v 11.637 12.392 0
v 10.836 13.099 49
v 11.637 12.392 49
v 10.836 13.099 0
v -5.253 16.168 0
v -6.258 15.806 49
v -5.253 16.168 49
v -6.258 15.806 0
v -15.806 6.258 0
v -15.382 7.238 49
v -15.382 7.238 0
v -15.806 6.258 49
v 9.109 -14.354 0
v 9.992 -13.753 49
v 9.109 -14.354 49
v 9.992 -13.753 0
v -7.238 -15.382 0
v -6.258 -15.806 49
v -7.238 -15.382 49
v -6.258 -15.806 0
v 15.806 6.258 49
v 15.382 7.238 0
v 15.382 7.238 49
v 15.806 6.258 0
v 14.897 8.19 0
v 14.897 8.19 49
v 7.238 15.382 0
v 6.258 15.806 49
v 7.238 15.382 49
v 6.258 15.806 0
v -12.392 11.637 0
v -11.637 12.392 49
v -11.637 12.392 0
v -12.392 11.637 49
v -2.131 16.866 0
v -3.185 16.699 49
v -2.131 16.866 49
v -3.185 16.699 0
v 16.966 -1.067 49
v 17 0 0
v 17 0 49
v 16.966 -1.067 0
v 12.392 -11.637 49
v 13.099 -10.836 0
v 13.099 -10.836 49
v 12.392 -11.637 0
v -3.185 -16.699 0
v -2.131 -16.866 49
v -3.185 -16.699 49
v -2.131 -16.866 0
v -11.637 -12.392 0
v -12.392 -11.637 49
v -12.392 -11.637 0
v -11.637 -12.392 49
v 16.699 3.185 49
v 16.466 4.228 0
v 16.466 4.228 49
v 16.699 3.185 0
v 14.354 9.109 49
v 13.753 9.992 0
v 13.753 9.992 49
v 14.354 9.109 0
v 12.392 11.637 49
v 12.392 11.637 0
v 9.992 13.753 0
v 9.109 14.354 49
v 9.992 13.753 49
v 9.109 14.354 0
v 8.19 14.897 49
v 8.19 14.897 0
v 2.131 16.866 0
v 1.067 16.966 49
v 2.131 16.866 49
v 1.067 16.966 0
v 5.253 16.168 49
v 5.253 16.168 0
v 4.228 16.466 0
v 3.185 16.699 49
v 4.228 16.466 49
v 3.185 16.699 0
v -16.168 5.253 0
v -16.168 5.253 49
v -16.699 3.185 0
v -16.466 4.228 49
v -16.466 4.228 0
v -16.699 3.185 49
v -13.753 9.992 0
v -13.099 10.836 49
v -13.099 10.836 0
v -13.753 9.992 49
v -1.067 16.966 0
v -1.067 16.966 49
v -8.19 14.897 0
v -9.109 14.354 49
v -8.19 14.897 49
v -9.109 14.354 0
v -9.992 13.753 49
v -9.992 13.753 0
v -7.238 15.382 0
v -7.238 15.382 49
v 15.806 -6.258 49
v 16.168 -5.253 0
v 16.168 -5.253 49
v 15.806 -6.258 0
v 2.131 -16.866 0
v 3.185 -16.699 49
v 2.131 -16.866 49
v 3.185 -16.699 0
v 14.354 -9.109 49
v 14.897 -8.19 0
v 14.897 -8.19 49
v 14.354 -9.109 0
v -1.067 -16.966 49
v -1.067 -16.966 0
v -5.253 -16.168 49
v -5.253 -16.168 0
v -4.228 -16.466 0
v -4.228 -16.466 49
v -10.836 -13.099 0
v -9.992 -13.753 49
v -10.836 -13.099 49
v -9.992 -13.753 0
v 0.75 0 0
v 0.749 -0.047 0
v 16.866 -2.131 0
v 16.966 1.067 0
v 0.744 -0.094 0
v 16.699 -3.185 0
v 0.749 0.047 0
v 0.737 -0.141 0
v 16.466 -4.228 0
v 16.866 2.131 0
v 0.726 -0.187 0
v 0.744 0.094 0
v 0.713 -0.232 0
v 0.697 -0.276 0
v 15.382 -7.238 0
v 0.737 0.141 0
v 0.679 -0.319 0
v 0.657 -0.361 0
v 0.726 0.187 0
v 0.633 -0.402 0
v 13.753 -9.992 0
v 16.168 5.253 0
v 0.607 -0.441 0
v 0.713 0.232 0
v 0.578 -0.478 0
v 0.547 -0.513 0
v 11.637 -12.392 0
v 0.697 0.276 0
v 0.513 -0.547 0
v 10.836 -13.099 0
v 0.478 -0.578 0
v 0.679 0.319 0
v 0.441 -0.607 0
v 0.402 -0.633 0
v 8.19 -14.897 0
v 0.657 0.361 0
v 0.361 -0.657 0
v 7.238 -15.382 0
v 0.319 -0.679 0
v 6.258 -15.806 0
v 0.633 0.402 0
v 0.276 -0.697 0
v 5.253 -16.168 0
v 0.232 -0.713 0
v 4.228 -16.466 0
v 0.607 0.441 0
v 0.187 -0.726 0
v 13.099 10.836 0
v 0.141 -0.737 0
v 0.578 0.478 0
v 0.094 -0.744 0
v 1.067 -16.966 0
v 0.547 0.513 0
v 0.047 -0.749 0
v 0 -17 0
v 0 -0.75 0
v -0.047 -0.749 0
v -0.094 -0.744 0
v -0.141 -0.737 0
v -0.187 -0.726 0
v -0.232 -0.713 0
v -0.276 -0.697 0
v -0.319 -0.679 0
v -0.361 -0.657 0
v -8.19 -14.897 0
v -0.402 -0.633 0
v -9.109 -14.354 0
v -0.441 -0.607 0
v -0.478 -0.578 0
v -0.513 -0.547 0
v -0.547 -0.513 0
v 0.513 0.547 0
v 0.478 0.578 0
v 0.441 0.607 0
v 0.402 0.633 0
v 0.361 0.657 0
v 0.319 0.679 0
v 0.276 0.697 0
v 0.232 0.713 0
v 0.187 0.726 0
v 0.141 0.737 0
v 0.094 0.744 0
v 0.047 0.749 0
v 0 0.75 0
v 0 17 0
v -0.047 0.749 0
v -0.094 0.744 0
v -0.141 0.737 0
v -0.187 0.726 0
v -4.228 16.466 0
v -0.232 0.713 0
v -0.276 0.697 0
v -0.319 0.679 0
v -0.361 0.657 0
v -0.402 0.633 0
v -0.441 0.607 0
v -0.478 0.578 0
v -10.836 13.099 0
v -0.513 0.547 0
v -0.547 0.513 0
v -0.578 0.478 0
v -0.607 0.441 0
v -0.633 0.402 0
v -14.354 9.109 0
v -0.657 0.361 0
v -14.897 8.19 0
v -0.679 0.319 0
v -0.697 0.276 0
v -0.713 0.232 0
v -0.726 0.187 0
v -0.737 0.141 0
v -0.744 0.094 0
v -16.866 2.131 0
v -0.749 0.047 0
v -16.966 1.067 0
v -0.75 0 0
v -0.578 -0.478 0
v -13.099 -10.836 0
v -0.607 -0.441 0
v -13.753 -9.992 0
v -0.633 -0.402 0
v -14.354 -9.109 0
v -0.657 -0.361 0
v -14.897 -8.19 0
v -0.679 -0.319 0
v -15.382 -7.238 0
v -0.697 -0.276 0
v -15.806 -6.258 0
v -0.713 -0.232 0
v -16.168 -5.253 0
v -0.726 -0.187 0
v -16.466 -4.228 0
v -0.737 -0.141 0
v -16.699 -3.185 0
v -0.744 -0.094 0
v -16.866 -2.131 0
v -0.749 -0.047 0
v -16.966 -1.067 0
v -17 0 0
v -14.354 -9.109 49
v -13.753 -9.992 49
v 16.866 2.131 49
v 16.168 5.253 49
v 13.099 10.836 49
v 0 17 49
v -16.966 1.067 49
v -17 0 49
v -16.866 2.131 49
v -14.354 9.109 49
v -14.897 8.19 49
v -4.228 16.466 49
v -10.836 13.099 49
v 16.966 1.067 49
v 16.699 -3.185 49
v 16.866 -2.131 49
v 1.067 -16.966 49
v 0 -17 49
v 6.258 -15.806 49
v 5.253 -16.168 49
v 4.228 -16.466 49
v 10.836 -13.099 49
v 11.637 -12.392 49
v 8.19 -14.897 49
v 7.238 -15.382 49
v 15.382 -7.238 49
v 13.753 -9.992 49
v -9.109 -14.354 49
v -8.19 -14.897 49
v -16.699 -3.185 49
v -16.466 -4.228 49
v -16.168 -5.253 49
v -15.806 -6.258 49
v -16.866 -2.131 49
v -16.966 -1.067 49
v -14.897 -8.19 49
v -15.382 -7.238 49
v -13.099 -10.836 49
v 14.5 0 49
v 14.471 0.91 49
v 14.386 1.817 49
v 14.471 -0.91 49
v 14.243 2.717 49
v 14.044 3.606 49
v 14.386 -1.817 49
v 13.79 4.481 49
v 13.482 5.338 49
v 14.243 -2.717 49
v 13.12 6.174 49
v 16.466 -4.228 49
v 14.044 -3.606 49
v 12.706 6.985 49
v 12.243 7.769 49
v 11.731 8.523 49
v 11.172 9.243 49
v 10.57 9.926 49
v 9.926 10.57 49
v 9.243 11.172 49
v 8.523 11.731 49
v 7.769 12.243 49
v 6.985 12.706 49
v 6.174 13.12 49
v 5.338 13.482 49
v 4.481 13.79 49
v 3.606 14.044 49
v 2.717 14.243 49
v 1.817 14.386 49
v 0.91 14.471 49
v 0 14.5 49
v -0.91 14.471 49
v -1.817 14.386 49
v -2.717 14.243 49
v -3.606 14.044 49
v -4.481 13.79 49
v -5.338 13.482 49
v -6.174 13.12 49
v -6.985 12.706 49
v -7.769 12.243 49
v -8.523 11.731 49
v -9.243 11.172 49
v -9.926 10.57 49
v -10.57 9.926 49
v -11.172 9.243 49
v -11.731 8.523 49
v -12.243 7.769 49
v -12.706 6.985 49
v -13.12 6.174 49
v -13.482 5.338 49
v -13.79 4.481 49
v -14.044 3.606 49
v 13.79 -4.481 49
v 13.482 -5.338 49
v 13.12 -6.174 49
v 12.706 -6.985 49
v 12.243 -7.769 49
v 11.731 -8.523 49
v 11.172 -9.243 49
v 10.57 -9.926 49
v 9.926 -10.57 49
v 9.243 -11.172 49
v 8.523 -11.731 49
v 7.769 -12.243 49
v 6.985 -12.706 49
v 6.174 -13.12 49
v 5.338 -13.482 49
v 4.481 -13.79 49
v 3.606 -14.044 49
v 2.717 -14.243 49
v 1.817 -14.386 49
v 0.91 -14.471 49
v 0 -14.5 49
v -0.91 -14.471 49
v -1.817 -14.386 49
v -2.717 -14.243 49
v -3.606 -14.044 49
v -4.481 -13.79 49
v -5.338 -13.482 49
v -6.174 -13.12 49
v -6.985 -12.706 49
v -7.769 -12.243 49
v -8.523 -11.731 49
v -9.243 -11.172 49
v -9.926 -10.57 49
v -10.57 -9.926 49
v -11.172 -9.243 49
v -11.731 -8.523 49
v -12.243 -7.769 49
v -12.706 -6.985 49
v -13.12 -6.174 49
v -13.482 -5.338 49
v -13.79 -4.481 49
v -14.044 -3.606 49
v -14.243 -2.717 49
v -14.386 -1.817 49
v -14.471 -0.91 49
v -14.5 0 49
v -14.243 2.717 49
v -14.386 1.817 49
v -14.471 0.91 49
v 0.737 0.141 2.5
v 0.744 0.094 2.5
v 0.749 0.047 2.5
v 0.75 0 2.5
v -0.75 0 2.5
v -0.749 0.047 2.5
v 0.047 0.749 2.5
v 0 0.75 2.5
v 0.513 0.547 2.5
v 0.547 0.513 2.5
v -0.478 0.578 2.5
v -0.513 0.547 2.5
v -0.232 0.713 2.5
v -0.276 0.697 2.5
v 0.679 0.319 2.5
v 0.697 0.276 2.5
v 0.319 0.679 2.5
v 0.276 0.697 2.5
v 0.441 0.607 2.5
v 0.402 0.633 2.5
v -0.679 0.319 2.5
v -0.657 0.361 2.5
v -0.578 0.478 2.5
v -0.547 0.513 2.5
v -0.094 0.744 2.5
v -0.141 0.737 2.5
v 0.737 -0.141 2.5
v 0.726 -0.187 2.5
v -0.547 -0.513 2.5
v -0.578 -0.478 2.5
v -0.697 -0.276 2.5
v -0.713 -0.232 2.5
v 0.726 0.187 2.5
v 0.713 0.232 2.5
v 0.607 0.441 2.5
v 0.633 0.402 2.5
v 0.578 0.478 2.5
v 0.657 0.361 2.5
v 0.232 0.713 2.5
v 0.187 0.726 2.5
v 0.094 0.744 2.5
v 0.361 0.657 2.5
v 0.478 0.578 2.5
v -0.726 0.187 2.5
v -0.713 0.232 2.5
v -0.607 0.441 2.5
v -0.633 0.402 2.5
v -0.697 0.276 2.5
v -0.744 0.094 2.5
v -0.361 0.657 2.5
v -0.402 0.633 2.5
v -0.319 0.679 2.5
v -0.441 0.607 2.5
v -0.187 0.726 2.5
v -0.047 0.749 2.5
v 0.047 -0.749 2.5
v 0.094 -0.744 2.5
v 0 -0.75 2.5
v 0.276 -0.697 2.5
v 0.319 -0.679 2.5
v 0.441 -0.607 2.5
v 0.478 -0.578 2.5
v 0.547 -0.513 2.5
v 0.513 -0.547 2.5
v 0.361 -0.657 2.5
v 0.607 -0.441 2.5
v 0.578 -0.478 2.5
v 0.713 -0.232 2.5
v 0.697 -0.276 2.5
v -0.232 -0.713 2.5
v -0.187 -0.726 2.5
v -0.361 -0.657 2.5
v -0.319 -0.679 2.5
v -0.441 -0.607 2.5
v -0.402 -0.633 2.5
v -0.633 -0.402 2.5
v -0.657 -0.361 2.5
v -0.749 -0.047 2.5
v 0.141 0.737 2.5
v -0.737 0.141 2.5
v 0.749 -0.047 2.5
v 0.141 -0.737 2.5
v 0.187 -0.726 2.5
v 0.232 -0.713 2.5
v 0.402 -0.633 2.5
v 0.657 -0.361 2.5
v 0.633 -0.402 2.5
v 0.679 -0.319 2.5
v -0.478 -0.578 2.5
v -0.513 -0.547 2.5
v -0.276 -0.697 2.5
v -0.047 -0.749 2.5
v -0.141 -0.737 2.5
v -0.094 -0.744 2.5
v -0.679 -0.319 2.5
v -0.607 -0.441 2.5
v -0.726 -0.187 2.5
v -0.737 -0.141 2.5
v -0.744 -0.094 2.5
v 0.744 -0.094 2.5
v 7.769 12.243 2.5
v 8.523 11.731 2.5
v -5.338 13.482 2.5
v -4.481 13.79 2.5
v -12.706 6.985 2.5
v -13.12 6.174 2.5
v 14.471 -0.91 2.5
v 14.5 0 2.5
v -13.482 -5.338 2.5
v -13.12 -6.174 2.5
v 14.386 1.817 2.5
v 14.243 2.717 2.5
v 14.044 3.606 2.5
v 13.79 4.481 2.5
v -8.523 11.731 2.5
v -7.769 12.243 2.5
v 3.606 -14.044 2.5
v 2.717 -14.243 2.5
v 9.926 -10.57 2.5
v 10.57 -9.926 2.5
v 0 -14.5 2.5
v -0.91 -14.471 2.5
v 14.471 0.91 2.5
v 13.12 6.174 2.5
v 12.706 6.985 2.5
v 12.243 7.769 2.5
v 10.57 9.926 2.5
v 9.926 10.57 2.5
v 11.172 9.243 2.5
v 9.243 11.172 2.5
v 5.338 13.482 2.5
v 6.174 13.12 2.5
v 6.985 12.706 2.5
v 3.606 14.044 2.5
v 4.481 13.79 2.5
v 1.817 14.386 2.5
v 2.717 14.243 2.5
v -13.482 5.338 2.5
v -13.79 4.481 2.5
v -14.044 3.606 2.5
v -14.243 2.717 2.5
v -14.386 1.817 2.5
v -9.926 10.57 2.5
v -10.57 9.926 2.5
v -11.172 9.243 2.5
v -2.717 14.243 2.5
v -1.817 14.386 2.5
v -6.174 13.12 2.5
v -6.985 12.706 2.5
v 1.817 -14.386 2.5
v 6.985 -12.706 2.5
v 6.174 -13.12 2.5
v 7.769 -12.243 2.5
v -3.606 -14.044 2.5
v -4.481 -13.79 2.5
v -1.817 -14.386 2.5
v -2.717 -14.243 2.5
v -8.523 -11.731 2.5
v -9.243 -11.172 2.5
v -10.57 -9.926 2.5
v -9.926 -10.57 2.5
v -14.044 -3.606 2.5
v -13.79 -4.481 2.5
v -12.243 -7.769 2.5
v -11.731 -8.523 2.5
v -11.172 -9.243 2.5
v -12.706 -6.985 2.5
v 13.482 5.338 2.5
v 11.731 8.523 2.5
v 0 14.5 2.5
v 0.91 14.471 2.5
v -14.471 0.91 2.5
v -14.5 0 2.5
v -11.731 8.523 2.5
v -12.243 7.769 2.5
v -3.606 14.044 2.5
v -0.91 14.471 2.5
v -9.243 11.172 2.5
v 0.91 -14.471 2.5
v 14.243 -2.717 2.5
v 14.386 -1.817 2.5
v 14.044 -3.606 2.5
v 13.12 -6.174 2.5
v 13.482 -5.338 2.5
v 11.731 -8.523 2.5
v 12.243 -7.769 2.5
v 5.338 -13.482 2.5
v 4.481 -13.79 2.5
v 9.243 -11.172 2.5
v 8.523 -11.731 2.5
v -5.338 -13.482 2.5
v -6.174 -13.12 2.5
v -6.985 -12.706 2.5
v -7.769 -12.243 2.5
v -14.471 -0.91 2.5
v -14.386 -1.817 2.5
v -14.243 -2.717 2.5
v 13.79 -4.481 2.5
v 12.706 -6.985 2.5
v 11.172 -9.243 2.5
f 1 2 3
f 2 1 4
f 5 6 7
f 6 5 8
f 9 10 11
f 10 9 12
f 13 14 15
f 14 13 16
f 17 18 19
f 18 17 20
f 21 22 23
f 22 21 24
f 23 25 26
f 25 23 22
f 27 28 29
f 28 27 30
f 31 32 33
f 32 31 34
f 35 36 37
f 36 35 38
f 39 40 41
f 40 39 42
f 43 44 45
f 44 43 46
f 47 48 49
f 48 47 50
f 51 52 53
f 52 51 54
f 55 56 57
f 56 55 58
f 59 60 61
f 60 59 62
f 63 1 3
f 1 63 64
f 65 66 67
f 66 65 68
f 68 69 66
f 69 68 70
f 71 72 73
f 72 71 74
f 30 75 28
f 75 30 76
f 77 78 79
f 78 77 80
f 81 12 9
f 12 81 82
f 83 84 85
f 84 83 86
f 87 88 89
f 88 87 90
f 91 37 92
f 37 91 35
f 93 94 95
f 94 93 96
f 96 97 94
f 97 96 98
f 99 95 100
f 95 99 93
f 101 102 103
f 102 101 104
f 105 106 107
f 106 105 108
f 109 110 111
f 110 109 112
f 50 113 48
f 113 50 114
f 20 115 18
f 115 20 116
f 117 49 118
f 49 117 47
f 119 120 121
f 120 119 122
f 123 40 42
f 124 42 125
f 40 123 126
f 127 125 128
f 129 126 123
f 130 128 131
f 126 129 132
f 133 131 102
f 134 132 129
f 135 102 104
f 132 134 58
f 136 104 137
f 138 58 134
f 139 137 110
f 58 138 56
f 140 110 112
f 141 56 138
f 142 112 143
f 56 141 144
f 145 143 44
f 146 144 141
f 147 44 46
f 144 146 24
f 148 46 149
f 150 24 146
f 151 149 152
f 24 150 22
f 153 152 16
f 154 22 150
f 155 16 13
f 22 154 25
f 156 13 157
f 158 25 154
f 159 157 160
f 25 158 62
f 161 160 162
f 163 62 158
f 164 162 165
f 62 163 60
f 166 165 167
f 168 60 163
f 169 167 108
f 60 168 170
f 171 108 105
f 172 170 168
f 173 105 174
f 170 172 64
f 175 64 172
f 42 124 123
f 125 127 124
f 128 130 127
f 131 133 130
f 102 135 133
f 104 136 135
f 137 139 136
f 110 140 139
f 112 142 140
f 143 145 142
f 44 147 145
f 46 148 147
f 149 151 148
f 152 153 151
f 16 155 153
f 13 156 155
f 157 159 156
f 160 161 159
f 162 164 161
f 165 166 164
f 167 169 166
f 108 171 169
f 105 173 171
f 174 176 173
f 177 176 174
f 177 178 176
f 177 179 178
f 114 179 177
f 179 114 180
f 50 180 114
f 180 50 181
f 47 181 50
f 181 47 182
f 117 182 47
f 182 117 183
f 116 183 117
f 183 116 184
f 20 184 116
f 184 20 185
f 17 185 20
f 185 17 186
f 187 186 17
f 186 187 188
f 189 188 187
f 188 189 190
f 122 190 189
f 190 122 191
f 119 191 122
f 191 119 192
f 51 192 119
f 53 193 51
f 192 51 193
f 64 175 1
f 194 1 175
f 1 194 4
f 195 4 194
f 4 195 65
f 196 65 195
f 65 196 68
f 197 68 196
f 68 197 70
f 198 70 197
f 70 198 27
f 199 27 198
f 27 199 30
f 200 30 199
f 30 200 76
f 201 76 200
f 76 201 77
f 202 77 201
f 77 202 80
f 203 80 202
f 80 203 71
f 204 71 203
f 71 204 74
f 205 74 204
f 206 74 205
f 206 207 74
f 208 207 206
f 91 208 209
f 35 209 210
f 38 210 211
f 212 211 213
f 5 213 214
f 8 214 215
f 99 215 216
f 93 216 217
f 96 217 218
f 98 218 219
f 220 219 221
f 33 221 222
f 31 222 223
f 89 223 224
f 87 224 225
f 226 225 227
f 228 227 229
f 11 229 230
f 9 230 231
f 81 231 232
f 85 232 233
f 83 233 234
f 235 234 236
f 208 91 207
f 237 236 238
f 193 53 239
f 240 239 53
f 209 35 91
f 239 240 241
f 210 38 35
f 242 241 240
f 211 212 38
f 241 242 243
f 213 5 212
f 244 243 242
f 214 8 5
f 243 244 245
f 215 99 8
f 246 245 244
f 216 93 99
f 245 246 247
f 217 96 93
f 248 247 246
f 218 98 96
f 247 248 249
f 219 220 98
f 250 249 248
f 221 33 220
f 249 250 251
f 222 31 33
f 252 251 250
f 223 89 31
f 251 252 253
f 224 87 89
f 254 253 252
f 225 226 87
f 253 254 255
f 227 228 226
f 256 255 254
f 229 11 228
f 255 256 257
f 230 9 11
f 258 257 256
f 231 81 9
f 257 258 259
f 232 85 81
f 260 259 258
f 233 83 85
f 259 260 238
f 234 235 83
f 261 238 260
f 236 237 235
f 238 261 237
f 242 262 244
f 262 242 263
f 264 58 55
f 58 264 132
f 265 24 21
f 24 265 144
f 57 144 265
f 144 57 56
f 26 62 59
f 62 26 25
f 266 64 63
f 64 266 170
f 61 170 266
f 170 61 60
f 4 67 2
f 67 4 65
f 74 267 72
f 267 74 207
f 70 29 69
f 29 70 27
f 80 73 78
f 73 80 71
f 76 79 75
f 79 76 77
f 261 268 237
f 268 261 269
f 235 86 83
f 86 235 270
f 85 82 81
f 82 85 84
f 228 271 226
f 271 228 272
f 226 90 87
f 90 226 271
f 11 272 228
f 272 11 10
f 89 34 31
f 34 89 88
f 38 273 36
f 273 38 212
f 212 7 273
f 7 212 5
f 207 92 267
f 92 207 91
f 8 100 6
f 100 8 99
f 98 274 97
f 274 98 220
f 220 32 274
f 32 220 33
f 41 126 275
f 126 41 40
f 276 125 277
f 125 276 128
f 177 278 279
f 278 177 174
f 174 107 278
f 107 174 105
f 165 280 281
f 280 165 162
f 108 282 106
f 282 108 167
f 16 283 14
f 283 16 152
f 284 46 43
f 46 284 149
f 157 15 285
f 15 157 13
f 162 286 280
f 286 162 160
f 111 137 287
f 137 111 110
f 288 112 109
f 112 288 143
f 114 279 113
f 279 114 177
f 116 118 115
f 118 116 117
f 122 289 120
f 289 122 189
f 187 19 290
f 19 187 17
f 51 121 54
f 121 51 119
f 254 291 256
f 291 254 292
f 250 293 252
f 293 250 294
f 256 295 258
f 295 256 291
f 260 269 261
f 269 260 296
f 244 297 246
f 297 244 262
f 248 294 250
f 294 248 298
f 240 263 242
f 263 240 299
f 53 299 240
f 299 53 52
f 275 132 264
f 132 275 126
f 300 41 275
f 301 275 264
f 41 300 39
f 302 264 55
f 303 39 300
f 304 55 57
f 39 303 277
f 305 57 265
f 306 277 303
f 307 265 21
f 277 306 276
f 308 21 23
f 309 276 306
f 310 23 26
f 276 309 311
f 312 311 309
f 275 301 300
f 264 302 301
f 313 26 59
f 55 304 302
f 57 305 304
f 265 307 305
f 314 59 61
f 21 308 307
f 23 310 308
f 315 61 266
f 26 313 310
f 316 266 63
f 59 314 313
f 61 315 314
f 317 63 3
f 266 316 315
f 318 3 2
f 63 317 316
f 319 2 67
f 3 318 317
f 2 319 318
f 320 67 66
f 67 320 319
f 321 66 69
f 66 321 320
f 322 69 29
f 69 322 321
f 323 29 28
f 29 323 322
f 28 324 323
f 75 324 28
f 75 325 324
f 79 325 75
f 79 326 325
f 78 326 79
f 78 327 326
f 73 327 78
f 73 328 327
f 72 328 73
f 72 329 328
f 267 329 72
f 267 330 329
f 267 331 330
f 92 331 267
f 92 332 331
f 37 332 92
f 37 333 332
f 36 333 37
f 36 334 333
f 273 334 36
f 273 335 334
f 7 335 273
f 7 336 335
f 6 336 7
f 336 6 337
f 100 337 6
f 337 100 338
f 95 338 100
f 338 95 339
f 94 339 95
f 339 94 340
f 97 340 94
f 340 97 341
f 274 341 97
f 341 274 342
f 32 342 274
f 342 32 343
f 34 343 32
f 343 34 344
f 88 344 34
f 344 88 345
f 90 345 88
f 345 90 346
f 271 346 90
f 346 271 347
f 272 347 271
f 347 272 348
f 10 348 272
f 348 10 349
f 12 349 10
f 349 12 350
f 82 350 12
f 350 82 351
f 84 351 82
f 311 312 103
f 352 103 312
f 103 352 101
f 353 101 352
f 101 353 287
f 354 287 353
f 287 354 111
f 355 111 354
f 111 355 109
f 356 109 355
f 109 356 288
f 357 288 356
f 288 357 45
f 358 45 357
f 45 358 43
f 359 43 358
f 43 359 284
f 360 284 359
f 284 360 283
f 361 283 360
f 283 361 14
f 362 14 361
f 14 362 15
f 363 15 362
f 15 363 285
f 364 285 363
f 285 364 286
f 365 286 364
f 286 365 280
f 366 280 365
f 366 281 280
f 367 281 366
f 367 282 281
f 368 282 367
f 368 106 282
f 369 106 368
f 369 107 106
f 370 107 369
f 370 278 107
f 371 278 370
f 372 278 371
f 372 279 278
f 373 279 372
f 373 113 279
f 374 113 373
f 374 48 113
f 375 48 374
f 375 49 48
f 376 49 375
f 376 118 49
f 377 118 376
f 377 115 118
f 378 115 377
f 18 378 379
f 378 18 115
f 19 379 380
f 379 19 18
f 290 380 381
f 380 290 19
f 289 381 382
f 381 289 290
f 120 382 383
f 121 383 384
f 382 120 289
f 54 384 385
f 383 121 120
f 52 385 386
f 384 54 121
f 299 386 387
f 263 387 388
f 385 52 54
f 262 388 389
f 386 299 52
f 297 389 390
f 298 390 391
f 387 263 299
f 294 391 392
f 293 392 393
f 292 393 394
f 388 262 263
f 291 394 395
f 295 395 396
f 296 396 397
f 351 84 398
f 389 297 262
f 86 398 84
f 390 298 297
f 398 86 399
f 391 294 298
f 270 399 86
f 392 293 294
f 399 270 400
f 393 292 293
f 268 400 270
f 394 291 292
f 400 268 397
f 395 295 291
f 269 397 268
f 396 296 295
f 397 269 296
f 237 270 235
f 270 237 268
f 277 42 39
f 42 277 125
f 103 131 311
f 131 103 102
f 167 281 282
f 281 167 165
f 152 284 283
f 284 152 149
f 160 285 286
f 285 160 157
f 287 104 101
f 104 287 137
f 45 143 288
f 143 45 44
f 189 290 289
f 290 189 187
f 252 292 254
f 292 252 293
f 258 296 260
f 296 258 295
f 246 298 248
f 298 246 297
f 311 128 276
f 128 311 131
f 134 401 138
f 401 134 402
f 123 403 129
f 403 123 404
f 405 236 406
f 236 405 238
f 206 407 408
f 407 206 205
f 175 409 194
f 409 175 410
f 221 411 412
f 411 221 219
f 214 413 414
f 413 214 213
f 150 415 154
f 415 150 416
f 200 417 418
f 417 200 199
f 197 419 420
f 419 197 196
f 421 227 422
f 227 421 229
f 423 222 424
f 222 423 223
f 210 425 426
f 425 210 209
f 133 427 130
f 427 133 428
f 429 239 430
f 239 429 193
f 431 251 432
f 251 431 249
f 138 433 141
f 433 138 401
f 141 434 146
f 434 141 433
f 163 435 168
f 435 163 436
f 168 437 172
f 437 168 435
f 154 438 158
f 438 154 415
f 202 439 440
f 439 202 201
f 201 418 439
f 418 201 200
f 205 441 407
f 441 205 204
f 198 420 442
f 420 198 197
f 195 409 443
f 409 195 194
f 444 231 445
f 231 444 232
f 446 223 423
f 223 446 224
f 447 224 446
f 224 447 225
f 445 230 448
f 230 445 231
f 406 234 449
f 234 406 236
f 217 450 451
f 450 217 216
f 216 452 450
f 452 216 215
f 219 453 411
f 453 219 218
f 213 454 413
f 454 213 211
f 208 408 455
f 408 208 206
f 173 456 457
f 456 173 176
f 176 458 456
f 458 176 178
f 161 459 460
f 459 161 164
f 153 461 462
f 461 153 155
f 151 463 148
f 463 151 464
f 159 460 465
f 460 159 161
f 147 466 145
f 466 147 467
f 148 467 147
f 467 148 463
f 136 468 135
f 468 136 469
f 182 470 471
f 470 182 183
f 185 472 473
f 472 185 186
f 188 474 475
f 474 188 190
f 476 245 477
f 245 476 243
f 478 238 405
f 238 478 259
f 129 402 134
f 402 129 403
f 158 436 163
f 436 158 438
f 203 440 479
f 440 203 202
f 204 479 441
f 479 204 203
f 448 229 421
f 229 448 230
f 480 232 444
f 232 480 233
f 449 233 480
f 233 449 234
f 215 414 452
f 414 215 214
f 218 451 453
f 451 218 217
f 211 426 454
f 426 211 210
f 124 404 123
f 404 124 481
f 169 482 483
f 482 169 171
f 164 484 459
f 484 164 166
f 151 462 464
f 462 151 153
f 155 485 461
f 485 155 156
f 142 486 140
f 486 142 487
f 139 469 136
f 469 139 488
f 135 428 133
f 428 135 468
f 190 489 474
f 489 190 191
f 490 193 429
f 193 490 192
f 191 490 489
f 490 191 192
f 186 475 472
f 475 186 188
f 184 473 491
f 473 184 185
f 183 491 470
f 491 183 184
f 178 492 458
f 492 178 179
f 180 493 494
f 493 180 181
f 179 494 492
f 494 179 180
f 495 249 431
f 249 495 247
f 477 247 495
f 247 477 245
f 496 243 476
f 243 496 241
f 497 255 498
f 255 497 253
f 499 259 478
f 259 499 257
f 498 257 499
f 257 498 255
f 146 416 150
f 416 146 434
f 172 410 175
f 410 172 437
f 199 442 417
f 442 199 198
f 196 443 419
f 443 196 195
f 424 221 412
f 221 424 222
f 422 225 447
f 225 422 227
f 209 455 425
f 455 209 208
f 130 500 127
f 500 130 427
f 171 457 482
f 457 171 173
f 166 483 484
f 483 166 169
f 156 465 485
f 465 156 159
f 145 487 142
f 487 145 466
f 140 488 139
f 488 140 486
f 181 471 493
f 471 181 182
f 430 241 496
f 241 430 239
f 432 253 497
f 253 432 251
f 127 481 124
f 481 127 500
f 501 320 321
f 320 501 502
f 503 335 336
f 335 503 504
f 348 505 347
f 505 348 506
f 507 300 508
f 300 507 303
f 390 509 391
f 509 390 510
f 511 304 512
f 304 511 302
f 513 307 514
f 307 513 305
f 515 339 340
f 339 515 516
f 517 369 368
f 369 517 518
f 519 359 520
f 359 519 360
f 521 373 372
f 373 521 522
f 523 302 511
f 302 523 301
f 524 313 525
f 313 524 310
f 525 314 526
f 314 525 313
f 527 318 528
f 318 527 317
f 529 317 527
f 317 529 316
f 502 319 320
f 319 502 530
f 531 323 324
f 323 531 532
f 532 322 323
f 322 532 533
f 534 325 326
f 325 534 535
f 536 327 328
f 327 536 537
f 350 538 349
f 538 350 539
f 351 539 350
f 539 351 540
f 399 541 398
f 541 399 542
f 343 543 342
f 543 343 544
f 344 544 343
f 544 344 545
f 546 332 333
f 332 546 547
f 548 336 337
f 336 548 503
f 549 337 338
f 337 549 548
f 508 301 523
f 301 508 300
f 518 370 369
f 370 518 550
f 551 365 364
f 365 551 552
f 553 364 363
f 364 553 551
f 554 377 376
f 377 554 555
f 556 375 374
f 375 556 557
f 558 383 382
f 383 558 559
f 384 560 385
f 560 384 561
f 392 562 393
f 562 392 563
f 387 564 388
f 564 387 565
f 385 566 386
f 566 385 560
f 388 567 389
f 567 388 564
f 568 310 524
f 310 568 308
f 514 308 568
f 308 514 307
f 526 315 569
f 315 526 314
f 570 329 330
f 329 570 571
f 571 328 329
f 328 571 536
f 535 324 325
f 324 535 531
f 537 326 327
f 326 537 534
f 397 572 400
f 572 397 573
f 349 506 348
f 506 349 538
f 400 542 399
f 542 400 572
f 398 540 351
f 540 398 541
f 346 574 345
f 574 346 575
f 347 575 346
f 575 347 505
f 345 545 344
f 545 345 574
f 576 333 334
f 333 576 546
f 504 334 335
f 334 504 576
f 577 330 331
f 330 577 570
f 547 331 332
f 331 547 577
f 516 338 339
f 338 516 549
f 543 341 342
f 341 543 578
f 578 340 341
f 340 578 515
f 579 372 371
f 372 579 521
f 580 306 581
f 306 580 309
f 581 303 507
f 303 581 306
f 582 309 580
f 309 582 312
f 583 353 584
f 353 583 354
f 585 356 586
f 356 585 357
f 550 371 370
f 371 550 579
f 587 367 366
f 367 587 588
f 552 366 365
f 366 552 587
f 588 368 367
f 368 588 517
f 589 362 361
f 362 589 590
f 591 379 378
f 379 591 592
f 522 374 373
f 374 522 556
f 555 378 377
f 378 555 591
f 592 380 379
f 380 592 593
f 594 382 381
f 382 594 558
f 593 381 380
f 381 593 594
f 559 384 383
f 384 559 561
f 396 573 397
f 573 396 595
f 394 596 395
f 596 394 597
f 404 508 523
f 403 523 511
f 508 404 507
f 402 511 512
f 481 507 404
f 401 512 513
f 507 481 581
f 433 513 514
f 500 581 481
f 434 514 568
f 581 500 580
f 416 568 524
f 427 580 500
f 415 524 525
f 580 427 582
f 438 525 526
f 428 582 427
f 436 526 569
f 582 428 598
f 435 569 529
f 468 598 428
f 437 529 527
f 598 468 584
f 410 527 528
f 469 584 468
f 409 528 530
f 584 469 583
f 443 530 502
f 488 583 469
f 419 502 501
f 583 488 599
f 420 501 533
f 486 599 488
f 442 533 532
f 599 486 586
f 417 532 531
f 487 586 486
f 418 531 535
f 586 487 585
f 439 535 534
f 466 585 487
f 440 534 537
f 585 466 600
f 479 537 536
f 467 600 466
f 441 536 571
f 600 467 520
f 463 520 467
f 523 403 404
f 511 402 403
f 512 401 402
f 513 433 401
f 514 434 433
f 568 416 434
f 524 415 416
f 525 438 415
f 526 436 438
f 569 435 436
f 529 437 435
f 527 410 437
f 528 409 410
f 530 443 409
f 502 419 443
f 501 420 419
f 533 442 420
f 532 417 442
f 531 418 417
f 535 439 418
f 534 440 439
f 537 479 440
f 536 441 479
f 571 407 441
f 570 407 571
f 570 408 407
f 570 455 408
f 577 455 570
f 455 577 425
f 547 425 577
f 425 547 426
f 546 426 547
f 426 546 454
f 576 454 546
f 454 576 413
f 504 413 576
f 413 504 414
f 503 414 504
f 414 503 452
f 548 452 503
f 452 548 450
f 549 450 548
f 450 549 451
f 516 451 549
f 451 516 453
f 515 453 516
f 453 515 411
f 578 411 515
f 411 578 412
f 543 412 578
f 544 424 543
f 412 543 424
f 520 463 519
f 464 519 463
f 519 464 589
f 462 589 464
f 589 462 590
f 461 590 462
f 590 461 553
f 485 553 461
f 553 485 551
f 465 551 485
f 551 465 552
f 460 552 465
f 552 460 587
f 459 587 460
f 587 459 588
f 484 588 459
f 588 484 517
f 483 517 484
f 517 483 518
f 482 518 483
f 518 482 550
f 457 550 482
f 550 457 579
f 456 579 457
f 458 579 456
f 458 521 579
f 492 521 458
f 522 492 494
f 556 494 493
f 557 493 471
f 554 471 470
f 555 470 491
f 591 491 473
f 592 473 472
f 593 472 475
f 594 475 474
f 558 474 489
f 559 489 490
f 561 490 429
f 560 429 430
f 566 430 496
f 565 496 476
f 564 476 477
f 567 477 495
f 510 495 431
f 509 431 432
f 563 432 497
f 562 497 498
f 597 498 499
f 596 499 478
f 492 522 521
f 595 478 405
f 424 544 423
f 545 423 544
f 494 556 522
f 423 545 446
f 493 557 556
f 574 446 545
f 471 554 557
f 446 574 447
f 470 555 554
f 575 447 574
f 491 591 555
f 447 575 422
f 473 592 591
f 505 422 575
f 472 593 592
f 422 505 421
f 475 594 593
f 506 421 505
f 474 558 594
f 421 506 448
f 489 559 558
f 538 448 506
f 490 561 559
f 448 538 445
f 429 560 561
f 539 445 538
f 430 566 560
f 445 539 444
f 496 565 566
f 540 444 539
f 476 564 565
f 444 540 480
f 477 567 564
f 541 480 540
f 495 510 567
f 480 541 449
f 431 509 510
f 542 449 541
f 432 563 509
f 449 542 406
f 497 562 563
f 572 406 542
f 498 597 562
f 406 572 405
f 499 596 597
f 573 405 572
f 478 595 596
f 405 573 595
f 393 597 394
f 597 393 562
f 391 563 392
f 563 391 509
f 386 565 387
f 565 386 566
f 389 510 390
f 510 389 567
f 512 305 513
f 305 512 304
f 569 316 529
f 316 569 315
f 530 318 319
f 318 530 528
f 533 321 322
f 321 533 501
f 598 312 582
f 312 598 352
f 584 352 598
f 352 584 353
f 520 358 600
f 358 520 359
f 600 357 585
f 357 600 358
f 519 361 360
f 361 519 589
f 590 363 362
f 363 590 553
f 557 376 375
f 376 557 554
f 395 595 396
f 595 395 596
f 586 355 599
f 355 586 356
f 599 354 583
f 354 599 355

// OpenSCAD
// A calibration adatpor for a Sensit MOS detector
// Joe Porcelli (joe@kt3i.com)

// Sensor Enclosure Parameters
diameter = 27;
height = 31;
inlet_diameter = 1.5;
wall_thickness = 2.5;
kurf = 1;
$fn = 100; // Number of angular slices

// Calculated parameters
// Adapter height
adapter_height = 1.5*height+wall_thickness;
inside_diameter = diameter + 2*kurf;


difference(){
    cylinder(h=adapter_height, d=diameter+2*(wall_thickness+kurf));     // Outside of Calibration adapter
    translate([0,0,-1]) cylinder(h=adapter_height, d=inlet_diameter);   // Inlet
    translate([0,0,wall_thickness]) cylinder(h=adapter_height, d=inside_diameter);
}
